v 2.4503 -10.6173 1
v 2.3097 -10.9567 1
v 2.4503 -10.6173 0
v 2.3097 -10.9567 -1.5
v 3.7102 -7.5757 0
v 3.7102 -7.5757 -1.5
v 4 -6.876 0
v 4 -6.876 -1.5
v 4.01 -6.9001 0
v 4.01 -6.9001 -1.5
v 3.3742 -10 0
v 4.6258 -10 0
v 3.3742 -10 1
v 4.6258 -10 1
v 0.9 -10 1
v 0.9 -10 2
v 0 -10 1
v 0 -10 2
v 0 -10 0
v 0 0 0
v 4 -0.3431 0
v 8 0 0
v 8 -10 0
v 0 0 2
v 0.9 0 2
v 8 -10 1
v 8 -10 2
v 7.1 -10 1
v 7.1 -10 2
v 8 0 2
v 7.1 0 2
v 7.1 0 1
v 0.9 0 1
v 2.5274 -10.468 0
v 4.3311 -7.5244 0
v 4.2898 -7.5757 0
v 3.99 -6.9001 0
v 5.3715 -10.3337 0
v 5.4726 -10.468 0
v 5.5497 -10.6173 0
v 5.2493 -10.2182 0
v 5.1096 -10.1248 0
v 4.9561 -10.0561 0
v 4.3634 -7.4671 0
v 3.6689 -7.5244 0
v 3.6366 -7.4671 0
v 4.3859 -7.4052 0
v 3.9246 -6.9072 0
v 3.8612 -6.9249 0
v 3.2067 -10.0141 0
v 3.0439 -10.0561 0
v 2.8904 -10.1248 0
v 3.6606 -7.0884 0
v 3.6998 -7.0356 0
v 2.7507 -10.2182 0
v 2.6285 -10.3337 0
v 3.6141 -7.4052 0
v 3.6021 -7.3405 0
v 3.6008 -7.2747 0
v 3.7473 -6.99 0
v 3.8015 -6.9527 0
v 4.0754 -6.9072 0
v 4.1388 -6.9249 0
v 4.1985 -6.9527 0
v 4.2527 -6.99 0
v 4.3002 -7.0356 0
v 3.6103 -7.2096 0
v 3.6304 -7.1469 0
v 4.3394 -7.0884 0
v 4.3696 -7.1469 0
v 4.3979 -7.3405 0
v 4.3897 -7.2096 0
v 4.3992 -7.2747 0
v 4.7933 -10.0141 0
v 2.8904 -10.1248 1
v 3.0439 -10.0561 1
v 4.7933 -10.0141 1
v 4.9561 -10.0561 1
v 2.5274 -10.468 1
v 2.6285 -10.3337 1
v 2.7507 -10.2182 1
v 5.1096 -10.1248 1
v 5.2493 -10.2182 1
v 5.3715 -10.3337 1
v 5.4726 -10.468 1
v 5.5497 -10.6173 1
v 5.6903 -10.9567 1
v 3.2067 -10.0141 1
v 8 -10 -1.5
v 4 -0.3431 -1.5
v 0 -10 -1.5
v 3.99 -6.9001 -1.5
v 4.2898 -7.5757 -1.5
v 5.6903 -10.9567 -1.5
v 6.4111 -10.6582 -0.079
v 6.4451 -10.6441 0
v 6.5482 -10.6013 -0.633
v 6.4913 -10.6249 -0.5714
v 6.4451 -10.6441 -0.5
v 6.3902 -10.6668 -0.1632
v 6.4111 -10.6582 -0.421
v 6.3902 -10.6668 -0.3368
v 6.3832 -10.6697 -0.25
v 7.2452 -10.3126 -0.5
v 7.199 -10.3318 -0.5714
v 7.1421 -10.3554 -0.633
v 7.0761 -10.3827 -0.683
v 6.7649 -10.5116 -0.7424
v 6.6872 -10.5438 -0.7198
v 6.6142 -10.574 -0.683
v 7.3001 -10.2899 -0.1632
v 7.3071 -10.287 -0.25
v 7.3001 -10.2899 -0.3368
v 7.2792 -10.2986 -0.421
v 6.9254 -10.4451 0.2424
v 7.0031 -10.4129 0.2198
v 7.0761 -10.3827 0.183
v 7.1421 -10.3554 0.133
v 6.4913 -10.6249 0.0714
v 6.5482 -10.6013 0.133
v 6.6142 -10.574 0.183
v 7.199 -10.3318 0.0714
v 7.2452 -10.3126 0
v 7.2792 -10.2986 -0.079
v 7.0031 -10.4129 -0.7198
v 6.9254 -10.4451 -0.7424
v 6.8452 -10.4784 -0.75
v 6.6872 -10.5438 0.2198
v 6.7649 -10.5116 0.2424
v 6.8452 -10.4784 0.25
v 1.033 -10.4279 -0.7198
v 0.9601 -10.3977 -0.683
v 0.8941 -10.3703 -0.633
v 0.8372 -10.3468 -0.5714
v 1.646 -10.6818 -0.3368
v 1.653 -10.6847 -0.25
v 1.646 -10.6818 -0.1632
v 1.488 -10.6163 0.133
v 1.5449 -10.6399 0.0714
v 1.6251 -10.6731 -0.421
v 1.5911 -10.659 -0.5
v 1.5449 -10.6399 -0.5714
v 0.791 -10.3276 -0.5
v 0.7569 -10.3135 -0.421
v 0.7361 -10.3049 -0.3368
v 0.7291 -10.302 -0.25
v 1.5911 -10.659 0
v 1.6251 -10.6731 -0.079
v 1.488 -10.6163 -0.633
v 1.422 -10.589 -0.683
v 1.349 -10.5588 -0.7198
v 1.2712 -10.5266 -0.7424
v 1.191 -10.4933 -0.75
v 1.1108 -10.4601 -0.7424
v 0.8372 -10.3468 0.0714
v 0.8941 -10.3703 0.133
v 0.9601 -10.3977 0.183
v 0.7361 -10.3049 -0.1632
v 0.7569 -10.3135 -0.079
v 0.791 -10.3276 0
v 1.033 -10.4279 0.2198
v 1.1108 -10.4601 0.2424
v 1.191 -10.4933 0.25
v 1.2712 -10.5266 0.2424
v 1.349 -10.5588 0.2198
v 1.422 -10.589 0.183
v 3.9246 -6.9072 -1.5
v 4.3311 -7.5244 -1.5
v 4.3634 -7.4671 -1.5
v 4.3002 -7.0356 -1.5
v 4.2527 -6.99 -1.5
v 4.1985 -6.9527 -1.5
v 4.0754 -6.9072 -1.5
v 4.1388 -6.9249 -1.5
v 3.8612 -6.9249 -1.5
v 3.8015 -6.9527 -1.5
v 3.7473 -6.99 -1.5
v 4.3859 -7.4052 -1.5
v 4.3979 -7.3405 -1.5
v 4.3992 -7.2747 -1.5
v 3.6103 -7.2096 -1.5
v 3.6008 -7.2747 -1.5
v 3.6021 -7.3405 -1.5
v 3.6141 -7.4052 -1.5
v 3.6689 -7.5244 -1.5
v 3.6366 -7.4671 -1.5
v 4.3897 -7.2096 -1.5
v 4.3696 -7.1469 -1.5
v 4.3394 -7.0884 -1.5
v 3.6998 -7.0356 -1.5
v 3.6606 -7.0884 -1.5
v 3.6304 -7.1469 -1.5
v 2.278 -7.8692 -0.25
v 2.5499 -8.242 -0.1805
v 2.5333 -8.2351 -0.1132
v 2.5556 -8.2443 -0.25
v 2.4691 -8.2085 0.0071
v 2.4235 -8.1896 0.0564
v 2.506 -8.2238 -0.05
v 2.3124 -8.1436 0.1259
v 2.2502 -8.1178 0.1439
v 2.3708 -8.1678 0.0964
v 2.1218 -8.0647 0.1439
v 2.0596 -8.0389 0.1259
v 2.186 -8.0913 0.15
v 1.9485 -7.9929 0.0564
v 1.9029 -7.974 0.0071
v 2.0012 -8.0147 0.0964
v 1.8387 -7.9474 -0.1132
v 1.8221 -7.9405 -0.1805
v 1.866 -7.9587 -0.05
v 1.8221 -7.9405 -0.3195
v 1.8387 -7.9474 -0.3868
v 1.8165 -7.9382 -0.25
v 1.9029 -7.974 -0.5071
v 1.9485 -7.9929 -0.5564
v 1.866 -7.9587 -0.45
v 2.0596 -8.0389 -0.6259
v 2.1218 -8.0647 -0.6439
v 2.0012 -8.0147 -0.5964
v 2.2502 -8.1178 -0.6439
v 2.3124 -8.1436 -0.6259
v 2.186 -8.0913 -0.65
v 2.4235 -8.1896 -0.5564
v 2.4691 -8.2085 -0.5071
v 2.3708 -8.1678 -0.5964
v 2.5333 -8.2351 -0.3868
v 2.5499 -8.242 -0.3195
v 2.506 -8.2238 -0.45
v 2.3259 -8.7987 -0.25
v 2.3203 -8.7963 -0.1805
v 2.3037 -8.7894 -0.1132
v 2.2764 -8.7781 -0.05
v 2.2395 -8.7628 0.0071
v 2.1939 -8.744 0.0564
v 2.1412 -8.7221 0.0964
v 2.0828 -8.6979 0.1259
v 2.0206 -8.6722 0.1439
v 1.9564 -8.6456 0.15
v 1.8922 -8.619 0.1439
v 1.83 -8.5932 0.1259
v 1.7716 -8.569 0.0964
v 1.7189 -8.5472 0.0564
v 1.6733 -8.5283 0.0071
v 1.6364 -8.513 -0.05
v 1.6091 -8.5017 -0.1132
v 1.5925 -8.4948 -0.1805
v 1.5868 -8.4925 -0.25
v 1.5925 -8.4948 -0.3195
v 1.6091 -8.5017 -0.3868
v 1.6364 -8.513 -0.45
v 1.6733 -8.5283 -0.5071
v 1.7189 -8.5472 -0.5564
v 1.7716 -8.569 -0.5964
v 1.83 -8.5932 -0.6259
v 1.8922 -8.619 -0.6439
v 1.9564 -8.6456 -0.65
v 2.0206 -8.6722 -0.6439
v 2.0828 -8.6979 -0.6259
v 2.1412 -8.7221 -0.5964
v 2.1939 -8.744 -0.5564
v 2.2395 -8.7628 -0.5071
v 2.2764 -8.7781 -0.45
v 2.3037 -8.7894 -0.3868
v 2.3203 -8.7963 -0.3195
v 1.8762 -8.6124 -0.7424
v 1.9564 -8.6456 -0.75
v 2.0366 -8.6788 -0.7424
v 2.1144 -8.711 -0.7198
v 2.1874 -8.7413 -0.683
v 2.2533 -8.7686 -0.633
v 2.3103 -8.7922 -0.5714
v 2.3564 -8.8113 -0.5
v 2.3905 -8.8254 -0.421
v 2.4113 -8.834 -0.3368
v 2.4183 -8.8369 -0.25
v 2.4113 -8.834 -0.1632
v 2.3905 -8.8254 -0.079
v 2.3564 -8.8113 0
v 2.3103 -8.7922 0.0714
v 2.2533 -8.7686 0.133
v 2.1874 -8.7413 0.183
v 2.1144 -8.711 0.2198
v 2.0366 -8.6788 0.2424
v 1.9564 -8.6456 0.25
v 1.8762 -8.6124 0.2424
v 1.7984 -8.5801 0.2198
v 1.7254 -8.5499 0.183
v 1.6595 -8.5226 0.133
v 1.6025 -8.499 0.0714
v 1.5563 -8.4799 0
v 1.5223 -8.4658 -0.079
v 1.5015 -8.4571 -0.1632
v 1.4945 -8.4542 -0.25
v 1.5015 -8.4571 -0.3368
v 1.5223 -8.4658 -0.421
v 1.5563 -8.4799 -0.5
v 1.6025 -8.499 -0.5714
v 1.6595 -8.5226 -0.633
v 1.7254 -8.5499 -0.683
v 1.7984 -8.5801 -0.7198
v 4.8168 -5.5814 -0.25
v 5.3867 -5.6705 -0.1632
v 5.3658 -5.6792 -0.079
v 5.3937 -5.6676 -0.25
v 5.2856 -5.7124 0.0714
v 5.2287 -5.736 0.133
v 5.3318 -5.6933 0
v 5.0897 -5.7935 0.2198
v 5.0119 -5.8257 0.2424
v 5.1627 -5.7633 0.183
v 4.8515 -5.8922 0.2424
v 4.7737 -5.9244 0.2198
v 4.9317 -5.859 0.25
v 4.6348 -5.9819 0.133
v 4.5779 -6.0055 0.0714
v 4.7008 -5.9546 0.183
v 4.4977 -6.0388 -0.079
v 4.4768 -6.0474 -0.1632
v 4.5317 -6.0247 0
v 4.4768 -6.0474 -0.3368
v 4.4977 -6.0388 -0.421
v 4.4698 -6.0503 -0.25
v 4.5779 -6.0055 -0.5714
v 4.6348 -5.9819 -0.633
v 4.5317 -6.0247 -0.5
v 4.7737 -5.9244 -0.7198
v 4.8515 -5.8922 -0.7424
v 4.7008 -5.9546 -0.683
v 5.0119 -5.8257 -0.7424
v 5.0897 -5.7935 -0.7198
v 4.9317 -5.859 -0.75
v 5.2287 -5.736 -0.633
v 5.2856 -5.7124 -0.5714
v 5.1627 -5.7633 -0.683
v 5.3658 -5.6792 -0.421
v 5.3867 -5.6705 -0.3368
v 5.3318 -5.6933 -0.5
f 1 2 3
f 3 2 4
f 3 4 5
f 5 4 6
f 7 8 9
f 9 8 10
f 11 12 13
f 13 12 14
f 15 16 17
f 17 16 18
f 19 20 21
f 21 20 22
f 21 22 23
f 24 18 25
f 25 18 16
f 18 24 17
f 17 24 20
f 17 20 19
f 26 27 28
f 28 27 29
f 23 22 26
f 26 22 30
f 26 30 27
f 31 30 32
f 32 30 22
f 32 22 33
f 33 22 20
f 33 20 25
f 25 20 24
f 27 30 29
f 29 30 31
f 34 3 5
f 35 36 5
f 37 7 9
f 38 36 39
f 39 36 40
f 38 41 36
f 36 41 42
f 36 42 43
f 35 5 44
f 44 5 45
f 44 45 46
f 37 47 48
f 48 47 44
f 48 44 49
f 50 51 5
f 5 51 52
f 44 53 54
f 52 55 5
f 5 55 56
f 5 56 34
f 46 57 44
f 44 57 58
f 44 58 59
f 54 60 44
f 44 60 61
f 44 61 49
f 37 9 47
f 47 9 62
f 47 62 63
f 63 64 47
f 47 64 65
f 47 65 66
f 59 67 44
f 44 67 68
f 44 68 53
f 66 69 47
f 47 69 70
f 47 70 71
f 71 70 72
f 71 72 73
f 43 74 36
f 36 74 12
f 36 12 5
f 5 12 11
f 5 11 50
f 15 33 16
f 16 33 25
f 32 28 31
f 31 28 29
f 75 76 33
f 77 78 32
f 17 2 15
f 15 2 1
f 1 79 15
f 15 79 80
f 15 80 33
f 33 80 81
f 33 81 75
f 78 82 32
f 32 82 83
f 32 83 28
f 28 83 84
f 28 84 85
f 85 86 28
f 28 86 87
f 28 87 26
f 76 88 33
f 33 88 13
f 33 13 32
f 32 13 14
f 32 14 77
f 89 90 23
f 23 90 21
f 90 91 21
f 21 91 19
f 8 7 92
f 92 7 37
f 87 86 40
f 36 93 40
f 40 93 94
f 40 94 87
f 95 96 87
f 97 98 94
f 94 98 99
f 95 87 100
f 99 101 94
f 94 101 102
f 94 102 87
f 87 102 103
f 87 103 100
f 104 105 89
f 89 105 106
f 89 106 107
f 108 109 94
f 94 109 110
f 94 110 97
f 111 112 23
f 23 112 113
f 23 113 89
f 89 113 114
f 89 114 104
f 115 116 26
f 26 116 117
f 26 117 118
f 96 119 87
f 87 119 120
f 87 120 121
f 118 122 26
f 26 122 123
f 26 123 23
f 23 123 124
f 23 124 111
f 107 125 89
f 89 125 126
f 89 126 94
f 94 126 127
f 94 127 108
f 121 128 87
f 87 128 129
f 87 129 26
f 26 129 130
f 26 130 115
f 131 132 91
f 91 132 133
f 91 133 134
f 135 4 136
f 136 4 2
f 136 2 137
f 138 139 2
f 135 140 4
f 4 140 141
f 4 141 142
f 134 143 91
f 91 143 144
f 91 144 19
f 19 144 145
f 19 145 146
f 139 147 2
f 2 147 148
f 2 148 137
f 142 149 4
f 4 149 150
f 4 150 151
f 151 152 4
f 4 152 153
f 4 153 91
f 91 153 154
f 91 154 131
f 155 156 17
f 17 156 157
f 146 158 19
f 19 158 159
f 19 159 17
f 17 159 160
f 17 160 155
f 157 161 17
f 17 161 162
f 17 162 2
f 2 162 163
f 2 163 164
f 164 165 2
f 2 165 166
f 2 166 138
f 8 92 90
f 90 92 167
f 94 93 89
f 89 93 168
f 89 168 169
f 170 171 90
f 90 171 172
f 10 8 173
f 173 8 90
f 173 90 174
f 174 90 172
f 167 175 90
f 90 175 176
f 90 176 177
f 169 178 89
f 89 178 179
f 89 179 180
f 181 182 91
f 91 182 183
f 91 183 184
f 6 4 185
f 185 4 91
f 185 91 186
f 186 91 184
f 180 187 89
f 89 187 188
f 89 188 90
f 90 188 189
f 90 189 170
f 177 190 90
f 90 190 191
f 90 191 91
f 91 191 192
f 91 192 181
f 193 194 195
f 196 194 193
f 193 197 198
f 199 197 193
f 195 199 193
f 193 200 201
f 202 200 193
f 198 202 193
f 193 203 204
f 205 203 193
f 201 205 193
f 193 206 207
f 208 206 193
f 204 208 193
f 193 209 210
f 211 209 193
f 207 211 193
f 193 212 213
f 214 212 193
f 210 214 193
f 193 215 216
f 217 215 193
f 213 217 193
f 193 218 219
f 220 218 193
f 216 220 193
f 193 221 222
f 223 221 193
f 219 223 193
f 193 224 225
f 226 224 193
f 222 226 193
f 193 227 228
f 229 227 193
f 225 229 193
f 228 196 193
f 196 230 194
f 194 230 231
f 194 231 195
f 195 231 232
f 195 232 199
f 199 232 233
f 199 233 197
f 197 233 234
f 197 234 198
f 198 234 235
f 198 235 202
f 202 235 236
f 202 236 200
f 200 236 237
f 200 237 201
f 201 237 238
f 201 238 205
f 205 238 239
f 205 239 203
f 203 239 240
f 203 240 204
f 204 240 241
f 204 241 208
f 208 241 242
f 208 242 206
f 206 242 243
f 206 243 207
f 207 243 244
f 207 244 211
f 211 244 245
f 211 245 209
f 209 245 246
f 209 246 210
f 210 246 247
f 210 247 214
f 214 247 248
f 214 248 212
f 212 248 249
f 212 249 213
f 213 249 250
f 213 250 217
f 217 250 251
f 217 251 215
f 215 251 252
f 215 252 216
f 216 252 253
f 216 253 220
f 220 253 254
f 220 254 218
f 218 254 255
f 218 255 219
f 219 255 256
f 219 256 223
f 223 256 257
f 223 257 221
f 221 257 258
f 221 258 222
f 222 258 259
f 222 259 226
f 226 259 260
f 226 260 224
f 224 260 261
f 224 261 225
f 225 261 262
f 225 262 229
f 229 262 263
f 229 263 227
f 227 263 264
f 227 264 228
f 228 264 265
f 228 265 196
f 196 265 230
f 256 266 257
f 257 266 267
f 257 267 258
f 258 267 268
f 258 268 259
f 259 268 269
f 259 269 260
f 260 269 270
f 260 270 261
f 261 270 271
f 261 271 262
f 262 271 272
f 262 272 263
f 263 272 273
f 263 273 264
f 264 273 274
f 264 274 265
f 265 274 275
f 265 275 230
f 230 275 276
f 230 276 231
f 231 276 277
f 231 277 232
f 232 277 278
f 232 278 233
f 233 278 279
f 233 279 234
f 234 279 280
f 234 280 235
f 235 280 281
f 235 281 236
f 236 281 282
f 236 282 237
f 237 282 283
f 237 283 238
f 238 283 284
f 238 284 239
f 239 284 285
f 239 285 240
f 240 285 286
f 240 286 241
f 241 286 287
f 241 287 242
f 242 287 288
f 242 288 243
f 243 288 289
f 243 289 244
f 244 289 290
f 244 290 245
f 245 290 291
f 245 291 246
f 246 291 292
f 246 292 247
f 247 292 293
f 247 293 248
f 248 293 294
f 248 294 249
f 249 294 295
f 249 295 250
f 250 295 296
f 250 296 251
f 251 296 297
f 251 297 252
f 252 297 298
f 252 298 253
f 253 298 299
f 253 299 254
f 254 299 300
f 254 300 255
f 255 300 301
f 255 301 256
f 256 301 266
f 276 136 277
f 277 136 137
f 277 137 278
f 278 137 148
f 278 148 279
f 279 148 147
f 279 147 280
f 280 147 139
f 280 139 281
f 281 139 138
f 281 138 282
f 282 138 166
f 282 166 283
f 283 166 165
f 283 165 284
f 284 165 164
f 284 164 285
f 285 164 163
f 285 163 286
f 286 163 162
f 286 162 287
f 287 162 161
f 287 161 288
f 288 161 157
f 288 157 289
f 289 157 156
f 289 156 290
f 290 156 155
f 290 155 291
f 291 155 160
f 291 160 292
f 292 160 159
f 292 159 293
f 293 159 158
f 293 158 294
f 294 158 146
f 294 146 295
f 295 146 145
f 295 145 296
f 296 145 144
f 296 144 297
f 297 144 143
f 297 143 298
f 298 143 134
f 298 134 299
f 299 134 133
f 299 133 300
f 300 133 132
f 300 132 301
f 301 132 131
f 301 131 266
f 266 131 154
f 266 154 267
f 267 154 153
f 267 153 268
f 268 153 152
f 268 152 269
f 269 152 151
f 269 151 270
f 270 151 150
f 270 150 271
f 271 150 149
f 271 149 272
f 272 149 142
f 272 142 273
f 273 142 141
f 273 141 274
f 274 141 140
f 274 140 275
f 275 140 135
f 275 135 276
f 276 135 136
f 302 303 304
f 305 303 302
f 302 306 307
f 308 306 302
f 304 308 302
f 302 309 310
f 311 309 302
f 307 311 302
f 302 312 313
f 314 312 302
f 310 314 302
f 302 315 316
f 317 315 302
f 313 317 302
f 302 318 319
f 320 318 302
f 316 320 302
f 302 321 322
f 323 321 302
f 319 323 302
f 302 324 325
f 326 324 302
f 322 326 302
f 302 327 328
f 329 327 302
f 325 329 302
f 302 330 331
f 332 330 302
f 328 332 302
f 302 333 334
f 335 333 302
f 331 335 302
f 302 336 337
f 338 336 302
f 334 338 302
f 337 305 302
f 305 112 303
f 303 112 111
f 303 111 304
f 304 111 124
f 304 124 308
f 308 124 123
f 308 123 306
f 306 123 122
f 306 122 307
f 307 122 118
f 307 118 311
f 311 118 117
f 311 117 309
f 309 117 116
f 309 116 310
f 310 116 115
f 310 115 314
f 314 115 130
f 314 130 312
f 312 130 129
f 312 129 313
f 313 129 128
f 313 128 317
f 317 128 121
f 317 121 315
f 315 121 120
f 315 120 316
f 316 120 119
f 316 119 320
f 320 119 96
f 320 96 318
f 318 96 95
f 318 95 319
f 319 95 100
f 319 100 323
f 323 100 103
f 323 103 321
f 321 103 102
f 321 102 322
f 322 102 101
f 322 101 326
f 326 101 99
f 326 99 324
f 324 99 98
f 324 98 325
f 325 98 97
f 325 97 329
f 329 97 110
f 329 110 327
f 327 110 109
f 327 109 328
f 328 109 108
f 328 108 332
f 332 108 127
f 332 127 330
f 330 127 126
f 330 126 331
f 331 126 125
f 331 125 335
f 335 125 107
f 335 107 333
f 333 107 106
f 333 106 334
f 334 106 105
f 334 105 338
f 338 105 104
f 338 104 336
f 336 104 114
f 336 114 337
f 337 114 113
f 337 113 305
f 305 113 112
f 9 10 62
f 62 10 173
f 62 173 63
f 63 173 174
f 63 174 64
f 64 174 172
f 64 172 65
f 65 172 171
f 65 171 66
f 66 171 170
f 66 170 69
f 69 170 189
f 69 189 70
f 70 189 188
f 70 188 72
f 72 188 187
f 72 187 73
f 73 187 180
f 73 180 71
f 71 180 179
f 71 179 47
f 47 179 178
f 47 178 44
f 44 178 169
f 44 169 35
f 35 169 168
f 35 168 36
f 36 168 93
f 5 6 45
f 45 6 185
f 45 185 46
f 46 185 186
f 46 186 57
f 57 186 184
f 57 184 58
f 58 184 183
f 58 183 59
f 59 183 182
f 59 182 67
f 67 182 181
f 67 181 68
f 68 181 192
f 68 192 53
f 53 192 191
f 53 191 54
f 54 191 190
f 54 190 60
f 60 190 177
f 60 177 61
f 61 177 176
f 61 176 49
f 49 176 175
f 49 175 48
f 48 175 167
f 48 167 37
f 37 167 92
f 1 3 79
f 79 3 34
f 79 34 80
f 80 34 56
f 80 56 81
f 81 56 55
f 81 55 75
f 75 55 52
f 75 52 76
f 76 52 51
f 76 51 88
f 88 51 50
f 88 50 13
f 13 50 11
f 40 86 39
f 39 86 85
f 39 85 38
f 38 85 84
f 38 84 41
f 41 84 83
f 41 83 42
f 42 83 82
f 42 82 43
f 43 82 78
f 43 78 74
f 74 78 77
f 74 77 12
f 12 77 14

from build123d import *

# Parameters (mm, degrees)
SKETCH1_W                       = 8
SKETCH1_H                       = 10
BOSS_EXTRUDE1_DEPTH             = 2
SKETCH2_W                       = 6.2
SKETCH2_H                       = 10
CUT_EXTRUDE1_DEPTH              = 1
BOSS_EXTRUDE2_DEPTH             = 1.5
BOSS_EXTRUDE2_DEPTH_BACK        = 1
M1X0_2_TAPPED_HOLE1_D           = 0.8
M1X0_2_TAPPED_HOLE1_DEPTH       = 2.6
M1X0_2_TAPPED_HOLE1_CBORE_D     = 1
M1X0_2_TAPPED_HOLE1_CBORE_DEPTH = 2
M1X0_2_TAPPED_HOLE1_TIP         = 0.240344248
M1_CLEARANCE_HOLE1_D            = 1
M1_CLEARANCE_HOLE1_DEPTH        = 5
M1_CLEARANCE_HOLE1_TIP          = 0.30043031
SKETCH8_R                       = 0.4
CUT_EXTRUDE2_DEPTH              = 1.5
FILLET2_R                       = 1


with BuildPart() as part:
    # Sketch1 → Boss-Extrude1 (new body)
    with BuildSketch(Plane.XY):
        with Locations((4, -5)):
            Rectangle(SKETCH1_W, SKETCH1_H)
    extrude(amount=BOSS_EXTRUDE1_DEPTH)

    # Sketch2 → Cut-Extrude1 (cut)
    with BuildSketch(Plane.XY.offset(2)):
        with Locations((4, -5)):
            Rectangle(SKETCH2_W, SKETCH2_H)
    extrude(amount=-CUT_EXTRUDE1_DEPTH, mode=Mode.SUBTRACT)

    # Sketch3 → Boss-Extrude2 (add, two sides)
    with BuildSketch(Plane(origin=(0, 0, 0), x_dir=(-1, 0, 0), z_dir=(0, 0, -1))) as boss_extrude2_sk:
        Polygon((-8, -10), (-4, -0.343145751), (0, -10), (-2.309698831, -10.956708581), (-4, -6.875960575), (-5.690301169, -10.956708581), align=None)
    extrude(amount=BOSS_EXTRUDE2_DEPTH)
    extrude(boss_extrude2_sk.sketch, amount=-BOSS_EXTRUDE2_DEPTH_BACK)

    # M1x0.2 Tapped Hole1
    with Locations(Plane(origin=(-3.535533906, -8.535533906, 0), x_dir=(-0.923879533, 0.382683432, 0), z_dir=(-0.382683432, -0.923879533, 0))):
        with Locations((-5.115994416, 0.25)):
            CounterBoreHole(M1X0_2_TAPPED_HOLE1_D / 2, M1X0_2_TAPPED_HOLE1_CBORE_D / 2, M1X0_2_TAPPED_HOLE1_CBORE_DEPTH, depth=M1X0_2_TAPPED_HOLE1_DEPTH)
            with Locations((0, 0, -(M1X0_2_TAPPED_HOLE1_DEPTH + M1X0_2_TAPPED_HOLE1_TIP / 2))):  # 118° drill point
                Cone(0, M1X0_2_TAPPED_HOLE1_D / 2, M1X0_2_TAPPED_HOLE1_TIP, mode=Mode.SUBTRACT)

    # M1 Clearance Hole1
    with Locations(Plane(origin=(4.707106781, -11.363961031, 0), x_dir=(-0.923879533, -0.382683432, 0), z_dir=(0.382683432, -0.923879533, 0))):
        with Locations((-2.314201936, 0.25)):
            Hole(M1_CLEARANCE_HOLE1_D / 2, depth=M1_CLEARANCE_HOLE1_DEPTH)
            with Locations((0, 0, -(M1_CLEARANCE_HOLE1_DEPTH + M1_CLEARANCE_HOLE1_TIP / 2))):  # 118° drill point
                Cone(0, M1_CLEARANCE_HOLE1_D / 2, M1_CLEARANCE_HOLE1_TIP, mode=Mode.SUBTRACT)

    # Sketch8 → Cut-Extrude2 (cut)
    with BuildSketch(Plane(origin=(0, 0, -1.5), x_dir=(-1, 0, 0), z_dir=(0, 0, -1))):
        with Locations((-4, -7.3)):
            Circle(SKETCH8_R)
    extrude(amount=-CUT_EXTRUDE2_DEPTH, mode=Mode.SUBTRACT)

    # Fillet2
    fillet2_edges = [part.edges().sort_by_distance(p)[0] for p in [
        (2.705980501, -10, 0.5),
        (5.294019499, -10, 0.5),
    ]]
    fillet(fillet2_edges, radius=FILLET2_R)


solid = part.part
